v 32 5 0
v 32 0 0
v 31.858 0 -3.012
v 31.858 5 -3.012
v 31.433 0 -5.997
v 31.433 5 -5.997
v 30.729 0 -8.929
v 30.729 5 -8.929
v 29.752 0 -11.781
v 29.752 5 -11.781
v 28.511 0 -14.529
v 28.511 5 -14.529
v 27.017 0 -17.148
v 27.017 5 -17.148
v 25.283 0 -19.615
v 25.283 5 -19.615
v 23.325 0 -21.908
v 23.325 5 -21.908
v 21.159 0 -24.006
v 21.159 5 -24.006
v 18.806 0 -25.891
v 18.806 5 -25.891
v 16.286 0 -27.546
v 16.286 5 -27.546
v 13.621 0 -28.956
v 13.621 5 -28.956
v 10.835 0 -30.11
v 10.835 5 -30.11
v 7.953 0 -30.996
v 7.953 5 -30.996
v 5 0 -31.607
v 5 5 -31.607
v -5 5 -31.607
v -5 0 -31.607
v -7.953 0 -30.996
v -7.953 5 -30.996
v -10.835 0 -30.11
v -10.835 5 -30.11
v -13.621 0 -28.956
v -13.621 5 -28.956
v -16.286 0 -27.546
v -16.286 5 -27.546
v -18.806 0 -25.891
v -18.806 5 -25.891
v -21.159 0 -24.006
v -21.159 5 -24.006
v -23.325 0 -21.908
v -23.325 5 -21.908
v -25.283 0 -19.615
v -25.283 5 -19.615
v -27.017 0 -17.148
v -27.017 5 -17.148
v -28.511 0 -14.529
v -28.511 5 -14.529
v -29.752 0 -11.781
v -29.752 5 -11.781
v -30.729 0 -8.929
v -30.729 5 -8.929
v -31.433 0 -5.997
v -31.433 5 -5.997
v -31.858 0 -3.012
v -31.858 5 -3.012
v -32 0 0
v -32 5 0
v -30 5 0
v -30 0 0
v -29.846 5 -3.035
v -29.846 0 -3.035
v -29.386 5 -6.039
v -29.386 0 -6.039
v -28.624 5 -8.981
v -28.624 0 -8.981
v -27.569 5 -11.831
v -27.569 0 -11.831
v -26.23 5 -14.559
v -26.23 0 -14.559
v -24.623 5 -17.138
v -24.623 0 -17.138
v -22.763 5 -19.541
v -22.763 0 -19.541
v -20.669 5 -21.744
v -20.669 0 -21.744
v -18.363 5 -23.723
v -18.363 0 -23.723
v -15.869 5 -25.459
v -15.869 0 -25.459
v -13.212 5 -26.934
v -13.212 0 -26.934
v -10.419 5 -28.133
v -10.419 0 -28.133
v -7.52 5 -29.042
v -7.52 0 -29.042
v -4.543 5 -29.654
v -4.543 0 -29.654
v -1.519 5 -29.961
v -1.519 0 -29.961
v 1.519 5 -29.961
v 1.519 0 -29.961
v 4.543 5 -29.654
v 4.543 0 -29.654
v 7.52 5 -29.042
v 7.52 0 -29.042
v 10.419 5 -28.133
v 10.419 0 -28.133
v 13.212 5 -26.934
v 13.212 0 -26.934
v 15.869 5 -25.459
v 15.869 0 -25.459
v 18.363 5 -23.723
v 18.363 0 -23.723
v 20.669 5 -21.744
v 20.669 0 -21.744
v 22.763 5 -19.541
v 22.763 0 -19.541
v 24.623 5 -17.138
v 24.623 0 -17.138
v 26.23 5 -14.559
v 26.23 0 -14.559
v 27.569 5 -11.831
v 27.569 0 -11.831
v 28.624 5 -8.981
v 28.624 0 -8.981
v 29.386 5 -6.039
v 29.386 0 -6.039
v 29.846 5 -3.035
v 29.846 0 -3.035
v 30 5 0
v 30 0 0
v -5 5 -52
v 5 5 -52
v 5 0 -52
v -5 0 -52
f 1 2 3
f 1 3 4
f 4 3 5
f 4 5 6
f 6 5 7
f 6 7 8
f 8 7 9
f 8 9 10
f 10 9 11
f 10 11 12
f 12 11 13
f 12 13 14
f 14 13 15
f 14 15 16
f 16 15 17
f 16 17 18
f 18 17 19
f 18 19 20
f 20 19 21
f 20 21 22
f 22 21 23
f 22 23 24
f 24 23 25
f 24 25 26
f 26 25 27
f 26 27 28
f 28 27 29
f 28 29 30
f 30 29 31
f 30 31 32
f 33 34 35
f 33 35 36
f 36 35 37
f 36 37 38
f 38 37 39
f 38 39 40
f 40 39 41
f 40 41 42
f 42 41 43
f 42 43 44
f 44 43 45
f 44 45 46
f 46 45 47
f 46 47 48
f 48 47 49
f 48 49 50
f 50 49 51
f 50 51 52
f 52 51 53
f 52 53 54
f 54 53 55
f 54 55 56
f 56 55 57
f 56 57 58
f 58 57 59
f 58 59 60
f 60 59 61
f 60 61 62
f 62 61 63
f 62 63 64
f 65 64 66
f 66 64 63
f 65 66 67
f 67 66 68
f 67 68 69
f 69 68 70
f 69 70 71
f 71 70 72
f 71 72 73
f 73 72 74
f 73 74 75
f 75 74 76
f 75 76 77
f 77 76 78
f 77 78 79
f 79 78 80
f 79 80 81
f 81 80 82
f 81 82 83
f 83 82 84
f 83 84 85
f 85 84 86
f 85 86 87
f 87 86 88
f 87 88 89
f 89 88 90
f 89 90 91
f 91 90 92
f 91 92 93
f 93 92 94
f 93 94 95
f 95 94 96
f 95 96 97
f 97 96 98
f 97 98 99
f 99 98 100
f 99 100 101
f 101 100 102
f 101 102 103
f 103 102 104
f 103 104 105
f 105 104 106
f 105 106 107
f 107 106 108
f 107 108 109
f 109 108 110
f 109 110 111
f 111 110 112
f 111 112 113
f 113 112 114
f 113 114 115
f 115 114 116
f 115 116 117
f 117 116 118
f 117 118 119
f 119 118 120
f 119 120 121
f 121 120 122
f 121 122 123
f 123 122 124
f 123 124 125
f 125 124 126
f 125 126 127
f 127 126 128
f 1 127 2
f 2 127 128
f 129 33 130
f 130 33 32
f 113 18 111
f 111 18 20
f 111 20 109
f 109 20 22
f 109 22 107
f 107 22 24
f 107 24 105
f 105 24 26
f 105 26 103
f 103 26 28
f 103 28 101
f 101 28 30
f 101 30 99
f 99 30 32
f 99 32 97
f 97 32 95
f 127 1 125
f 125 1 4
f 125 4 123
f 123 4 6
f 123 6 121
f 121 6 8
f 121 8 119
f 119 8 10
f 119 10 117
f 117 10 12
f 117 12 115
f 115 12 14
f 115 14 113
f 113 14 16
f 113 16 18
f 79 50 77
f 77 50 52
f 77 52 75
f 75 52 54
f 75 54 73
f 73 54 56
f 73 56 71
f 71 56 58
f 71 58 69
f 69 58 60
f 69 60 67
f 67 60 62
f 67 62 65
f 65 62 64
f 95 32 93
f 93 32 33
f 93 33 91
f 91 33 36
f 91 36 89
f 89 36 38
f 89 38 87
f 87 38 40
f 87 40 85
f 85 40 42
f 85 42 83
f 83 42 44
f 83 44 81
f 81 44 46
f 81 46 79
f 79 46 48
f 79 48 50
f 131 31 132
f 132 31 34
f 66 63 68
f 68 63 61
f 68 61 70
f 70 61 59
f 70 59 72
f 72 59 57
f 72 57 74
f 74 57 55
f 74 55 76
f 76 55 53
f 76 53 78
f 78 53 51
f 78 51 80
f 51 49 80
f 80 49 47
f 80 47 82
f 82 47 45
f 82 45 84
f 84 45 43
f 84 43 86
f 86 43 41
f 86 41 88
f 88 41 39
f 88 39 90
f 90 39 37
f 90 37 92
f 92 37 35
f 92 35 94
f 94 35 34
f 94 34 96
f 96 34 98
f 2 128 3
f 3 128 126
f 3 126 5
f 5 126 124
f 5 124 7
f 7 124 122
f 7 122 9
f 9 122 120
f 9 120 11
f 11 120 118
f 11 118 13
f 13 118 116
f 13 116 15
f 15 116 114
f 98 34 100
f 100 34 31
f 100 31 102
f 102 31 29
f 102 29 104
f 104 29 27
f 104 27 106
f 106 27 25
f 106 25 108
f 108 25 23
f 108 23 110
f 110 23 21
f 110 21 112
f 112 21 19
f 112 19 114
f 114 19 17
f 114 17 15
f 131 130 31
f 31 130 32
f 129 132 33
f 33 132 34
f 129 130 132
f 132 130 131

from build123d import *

# Parameters (mm, degrees)
EXTRUDE_1_DEPTH = 5
EXTRUDE_2_DEPTH = 5


with BuildPart() as part:
    # 草图1 → 凸台-拉伸1 (new body)
    with BuildSketch(Plane(origin=(0, 0, 0), x_dir=(1, 0, 0), z_dir=(0, 1, 0))):
        with BuildLine():
            Line((-32, 0), (-30, 0))
            ThreePointArc((-30, 0), (0, 30), (30, 0))
            Line((30, 0), (32, 0))
            ThreePointArc((32, 0), (0, 32), (-32, 0))
        make_face()
    extrude(amount=EXTRUDE_1_DEPTH)

    # 草图2 → 凸台-拉伸2 (add)
    with BuildSketch(Plane(origin=(0, 0, 0), x_dir=(1, 0, 0), z_dir=(0, 1, 0))):
        Polygon((5, 52), (0, 52), (-5, 52), (-5, 31), (5, 31), align=None)
    extrude(amount=EXTRUDE_2_DEPTH)


solid = part.part
